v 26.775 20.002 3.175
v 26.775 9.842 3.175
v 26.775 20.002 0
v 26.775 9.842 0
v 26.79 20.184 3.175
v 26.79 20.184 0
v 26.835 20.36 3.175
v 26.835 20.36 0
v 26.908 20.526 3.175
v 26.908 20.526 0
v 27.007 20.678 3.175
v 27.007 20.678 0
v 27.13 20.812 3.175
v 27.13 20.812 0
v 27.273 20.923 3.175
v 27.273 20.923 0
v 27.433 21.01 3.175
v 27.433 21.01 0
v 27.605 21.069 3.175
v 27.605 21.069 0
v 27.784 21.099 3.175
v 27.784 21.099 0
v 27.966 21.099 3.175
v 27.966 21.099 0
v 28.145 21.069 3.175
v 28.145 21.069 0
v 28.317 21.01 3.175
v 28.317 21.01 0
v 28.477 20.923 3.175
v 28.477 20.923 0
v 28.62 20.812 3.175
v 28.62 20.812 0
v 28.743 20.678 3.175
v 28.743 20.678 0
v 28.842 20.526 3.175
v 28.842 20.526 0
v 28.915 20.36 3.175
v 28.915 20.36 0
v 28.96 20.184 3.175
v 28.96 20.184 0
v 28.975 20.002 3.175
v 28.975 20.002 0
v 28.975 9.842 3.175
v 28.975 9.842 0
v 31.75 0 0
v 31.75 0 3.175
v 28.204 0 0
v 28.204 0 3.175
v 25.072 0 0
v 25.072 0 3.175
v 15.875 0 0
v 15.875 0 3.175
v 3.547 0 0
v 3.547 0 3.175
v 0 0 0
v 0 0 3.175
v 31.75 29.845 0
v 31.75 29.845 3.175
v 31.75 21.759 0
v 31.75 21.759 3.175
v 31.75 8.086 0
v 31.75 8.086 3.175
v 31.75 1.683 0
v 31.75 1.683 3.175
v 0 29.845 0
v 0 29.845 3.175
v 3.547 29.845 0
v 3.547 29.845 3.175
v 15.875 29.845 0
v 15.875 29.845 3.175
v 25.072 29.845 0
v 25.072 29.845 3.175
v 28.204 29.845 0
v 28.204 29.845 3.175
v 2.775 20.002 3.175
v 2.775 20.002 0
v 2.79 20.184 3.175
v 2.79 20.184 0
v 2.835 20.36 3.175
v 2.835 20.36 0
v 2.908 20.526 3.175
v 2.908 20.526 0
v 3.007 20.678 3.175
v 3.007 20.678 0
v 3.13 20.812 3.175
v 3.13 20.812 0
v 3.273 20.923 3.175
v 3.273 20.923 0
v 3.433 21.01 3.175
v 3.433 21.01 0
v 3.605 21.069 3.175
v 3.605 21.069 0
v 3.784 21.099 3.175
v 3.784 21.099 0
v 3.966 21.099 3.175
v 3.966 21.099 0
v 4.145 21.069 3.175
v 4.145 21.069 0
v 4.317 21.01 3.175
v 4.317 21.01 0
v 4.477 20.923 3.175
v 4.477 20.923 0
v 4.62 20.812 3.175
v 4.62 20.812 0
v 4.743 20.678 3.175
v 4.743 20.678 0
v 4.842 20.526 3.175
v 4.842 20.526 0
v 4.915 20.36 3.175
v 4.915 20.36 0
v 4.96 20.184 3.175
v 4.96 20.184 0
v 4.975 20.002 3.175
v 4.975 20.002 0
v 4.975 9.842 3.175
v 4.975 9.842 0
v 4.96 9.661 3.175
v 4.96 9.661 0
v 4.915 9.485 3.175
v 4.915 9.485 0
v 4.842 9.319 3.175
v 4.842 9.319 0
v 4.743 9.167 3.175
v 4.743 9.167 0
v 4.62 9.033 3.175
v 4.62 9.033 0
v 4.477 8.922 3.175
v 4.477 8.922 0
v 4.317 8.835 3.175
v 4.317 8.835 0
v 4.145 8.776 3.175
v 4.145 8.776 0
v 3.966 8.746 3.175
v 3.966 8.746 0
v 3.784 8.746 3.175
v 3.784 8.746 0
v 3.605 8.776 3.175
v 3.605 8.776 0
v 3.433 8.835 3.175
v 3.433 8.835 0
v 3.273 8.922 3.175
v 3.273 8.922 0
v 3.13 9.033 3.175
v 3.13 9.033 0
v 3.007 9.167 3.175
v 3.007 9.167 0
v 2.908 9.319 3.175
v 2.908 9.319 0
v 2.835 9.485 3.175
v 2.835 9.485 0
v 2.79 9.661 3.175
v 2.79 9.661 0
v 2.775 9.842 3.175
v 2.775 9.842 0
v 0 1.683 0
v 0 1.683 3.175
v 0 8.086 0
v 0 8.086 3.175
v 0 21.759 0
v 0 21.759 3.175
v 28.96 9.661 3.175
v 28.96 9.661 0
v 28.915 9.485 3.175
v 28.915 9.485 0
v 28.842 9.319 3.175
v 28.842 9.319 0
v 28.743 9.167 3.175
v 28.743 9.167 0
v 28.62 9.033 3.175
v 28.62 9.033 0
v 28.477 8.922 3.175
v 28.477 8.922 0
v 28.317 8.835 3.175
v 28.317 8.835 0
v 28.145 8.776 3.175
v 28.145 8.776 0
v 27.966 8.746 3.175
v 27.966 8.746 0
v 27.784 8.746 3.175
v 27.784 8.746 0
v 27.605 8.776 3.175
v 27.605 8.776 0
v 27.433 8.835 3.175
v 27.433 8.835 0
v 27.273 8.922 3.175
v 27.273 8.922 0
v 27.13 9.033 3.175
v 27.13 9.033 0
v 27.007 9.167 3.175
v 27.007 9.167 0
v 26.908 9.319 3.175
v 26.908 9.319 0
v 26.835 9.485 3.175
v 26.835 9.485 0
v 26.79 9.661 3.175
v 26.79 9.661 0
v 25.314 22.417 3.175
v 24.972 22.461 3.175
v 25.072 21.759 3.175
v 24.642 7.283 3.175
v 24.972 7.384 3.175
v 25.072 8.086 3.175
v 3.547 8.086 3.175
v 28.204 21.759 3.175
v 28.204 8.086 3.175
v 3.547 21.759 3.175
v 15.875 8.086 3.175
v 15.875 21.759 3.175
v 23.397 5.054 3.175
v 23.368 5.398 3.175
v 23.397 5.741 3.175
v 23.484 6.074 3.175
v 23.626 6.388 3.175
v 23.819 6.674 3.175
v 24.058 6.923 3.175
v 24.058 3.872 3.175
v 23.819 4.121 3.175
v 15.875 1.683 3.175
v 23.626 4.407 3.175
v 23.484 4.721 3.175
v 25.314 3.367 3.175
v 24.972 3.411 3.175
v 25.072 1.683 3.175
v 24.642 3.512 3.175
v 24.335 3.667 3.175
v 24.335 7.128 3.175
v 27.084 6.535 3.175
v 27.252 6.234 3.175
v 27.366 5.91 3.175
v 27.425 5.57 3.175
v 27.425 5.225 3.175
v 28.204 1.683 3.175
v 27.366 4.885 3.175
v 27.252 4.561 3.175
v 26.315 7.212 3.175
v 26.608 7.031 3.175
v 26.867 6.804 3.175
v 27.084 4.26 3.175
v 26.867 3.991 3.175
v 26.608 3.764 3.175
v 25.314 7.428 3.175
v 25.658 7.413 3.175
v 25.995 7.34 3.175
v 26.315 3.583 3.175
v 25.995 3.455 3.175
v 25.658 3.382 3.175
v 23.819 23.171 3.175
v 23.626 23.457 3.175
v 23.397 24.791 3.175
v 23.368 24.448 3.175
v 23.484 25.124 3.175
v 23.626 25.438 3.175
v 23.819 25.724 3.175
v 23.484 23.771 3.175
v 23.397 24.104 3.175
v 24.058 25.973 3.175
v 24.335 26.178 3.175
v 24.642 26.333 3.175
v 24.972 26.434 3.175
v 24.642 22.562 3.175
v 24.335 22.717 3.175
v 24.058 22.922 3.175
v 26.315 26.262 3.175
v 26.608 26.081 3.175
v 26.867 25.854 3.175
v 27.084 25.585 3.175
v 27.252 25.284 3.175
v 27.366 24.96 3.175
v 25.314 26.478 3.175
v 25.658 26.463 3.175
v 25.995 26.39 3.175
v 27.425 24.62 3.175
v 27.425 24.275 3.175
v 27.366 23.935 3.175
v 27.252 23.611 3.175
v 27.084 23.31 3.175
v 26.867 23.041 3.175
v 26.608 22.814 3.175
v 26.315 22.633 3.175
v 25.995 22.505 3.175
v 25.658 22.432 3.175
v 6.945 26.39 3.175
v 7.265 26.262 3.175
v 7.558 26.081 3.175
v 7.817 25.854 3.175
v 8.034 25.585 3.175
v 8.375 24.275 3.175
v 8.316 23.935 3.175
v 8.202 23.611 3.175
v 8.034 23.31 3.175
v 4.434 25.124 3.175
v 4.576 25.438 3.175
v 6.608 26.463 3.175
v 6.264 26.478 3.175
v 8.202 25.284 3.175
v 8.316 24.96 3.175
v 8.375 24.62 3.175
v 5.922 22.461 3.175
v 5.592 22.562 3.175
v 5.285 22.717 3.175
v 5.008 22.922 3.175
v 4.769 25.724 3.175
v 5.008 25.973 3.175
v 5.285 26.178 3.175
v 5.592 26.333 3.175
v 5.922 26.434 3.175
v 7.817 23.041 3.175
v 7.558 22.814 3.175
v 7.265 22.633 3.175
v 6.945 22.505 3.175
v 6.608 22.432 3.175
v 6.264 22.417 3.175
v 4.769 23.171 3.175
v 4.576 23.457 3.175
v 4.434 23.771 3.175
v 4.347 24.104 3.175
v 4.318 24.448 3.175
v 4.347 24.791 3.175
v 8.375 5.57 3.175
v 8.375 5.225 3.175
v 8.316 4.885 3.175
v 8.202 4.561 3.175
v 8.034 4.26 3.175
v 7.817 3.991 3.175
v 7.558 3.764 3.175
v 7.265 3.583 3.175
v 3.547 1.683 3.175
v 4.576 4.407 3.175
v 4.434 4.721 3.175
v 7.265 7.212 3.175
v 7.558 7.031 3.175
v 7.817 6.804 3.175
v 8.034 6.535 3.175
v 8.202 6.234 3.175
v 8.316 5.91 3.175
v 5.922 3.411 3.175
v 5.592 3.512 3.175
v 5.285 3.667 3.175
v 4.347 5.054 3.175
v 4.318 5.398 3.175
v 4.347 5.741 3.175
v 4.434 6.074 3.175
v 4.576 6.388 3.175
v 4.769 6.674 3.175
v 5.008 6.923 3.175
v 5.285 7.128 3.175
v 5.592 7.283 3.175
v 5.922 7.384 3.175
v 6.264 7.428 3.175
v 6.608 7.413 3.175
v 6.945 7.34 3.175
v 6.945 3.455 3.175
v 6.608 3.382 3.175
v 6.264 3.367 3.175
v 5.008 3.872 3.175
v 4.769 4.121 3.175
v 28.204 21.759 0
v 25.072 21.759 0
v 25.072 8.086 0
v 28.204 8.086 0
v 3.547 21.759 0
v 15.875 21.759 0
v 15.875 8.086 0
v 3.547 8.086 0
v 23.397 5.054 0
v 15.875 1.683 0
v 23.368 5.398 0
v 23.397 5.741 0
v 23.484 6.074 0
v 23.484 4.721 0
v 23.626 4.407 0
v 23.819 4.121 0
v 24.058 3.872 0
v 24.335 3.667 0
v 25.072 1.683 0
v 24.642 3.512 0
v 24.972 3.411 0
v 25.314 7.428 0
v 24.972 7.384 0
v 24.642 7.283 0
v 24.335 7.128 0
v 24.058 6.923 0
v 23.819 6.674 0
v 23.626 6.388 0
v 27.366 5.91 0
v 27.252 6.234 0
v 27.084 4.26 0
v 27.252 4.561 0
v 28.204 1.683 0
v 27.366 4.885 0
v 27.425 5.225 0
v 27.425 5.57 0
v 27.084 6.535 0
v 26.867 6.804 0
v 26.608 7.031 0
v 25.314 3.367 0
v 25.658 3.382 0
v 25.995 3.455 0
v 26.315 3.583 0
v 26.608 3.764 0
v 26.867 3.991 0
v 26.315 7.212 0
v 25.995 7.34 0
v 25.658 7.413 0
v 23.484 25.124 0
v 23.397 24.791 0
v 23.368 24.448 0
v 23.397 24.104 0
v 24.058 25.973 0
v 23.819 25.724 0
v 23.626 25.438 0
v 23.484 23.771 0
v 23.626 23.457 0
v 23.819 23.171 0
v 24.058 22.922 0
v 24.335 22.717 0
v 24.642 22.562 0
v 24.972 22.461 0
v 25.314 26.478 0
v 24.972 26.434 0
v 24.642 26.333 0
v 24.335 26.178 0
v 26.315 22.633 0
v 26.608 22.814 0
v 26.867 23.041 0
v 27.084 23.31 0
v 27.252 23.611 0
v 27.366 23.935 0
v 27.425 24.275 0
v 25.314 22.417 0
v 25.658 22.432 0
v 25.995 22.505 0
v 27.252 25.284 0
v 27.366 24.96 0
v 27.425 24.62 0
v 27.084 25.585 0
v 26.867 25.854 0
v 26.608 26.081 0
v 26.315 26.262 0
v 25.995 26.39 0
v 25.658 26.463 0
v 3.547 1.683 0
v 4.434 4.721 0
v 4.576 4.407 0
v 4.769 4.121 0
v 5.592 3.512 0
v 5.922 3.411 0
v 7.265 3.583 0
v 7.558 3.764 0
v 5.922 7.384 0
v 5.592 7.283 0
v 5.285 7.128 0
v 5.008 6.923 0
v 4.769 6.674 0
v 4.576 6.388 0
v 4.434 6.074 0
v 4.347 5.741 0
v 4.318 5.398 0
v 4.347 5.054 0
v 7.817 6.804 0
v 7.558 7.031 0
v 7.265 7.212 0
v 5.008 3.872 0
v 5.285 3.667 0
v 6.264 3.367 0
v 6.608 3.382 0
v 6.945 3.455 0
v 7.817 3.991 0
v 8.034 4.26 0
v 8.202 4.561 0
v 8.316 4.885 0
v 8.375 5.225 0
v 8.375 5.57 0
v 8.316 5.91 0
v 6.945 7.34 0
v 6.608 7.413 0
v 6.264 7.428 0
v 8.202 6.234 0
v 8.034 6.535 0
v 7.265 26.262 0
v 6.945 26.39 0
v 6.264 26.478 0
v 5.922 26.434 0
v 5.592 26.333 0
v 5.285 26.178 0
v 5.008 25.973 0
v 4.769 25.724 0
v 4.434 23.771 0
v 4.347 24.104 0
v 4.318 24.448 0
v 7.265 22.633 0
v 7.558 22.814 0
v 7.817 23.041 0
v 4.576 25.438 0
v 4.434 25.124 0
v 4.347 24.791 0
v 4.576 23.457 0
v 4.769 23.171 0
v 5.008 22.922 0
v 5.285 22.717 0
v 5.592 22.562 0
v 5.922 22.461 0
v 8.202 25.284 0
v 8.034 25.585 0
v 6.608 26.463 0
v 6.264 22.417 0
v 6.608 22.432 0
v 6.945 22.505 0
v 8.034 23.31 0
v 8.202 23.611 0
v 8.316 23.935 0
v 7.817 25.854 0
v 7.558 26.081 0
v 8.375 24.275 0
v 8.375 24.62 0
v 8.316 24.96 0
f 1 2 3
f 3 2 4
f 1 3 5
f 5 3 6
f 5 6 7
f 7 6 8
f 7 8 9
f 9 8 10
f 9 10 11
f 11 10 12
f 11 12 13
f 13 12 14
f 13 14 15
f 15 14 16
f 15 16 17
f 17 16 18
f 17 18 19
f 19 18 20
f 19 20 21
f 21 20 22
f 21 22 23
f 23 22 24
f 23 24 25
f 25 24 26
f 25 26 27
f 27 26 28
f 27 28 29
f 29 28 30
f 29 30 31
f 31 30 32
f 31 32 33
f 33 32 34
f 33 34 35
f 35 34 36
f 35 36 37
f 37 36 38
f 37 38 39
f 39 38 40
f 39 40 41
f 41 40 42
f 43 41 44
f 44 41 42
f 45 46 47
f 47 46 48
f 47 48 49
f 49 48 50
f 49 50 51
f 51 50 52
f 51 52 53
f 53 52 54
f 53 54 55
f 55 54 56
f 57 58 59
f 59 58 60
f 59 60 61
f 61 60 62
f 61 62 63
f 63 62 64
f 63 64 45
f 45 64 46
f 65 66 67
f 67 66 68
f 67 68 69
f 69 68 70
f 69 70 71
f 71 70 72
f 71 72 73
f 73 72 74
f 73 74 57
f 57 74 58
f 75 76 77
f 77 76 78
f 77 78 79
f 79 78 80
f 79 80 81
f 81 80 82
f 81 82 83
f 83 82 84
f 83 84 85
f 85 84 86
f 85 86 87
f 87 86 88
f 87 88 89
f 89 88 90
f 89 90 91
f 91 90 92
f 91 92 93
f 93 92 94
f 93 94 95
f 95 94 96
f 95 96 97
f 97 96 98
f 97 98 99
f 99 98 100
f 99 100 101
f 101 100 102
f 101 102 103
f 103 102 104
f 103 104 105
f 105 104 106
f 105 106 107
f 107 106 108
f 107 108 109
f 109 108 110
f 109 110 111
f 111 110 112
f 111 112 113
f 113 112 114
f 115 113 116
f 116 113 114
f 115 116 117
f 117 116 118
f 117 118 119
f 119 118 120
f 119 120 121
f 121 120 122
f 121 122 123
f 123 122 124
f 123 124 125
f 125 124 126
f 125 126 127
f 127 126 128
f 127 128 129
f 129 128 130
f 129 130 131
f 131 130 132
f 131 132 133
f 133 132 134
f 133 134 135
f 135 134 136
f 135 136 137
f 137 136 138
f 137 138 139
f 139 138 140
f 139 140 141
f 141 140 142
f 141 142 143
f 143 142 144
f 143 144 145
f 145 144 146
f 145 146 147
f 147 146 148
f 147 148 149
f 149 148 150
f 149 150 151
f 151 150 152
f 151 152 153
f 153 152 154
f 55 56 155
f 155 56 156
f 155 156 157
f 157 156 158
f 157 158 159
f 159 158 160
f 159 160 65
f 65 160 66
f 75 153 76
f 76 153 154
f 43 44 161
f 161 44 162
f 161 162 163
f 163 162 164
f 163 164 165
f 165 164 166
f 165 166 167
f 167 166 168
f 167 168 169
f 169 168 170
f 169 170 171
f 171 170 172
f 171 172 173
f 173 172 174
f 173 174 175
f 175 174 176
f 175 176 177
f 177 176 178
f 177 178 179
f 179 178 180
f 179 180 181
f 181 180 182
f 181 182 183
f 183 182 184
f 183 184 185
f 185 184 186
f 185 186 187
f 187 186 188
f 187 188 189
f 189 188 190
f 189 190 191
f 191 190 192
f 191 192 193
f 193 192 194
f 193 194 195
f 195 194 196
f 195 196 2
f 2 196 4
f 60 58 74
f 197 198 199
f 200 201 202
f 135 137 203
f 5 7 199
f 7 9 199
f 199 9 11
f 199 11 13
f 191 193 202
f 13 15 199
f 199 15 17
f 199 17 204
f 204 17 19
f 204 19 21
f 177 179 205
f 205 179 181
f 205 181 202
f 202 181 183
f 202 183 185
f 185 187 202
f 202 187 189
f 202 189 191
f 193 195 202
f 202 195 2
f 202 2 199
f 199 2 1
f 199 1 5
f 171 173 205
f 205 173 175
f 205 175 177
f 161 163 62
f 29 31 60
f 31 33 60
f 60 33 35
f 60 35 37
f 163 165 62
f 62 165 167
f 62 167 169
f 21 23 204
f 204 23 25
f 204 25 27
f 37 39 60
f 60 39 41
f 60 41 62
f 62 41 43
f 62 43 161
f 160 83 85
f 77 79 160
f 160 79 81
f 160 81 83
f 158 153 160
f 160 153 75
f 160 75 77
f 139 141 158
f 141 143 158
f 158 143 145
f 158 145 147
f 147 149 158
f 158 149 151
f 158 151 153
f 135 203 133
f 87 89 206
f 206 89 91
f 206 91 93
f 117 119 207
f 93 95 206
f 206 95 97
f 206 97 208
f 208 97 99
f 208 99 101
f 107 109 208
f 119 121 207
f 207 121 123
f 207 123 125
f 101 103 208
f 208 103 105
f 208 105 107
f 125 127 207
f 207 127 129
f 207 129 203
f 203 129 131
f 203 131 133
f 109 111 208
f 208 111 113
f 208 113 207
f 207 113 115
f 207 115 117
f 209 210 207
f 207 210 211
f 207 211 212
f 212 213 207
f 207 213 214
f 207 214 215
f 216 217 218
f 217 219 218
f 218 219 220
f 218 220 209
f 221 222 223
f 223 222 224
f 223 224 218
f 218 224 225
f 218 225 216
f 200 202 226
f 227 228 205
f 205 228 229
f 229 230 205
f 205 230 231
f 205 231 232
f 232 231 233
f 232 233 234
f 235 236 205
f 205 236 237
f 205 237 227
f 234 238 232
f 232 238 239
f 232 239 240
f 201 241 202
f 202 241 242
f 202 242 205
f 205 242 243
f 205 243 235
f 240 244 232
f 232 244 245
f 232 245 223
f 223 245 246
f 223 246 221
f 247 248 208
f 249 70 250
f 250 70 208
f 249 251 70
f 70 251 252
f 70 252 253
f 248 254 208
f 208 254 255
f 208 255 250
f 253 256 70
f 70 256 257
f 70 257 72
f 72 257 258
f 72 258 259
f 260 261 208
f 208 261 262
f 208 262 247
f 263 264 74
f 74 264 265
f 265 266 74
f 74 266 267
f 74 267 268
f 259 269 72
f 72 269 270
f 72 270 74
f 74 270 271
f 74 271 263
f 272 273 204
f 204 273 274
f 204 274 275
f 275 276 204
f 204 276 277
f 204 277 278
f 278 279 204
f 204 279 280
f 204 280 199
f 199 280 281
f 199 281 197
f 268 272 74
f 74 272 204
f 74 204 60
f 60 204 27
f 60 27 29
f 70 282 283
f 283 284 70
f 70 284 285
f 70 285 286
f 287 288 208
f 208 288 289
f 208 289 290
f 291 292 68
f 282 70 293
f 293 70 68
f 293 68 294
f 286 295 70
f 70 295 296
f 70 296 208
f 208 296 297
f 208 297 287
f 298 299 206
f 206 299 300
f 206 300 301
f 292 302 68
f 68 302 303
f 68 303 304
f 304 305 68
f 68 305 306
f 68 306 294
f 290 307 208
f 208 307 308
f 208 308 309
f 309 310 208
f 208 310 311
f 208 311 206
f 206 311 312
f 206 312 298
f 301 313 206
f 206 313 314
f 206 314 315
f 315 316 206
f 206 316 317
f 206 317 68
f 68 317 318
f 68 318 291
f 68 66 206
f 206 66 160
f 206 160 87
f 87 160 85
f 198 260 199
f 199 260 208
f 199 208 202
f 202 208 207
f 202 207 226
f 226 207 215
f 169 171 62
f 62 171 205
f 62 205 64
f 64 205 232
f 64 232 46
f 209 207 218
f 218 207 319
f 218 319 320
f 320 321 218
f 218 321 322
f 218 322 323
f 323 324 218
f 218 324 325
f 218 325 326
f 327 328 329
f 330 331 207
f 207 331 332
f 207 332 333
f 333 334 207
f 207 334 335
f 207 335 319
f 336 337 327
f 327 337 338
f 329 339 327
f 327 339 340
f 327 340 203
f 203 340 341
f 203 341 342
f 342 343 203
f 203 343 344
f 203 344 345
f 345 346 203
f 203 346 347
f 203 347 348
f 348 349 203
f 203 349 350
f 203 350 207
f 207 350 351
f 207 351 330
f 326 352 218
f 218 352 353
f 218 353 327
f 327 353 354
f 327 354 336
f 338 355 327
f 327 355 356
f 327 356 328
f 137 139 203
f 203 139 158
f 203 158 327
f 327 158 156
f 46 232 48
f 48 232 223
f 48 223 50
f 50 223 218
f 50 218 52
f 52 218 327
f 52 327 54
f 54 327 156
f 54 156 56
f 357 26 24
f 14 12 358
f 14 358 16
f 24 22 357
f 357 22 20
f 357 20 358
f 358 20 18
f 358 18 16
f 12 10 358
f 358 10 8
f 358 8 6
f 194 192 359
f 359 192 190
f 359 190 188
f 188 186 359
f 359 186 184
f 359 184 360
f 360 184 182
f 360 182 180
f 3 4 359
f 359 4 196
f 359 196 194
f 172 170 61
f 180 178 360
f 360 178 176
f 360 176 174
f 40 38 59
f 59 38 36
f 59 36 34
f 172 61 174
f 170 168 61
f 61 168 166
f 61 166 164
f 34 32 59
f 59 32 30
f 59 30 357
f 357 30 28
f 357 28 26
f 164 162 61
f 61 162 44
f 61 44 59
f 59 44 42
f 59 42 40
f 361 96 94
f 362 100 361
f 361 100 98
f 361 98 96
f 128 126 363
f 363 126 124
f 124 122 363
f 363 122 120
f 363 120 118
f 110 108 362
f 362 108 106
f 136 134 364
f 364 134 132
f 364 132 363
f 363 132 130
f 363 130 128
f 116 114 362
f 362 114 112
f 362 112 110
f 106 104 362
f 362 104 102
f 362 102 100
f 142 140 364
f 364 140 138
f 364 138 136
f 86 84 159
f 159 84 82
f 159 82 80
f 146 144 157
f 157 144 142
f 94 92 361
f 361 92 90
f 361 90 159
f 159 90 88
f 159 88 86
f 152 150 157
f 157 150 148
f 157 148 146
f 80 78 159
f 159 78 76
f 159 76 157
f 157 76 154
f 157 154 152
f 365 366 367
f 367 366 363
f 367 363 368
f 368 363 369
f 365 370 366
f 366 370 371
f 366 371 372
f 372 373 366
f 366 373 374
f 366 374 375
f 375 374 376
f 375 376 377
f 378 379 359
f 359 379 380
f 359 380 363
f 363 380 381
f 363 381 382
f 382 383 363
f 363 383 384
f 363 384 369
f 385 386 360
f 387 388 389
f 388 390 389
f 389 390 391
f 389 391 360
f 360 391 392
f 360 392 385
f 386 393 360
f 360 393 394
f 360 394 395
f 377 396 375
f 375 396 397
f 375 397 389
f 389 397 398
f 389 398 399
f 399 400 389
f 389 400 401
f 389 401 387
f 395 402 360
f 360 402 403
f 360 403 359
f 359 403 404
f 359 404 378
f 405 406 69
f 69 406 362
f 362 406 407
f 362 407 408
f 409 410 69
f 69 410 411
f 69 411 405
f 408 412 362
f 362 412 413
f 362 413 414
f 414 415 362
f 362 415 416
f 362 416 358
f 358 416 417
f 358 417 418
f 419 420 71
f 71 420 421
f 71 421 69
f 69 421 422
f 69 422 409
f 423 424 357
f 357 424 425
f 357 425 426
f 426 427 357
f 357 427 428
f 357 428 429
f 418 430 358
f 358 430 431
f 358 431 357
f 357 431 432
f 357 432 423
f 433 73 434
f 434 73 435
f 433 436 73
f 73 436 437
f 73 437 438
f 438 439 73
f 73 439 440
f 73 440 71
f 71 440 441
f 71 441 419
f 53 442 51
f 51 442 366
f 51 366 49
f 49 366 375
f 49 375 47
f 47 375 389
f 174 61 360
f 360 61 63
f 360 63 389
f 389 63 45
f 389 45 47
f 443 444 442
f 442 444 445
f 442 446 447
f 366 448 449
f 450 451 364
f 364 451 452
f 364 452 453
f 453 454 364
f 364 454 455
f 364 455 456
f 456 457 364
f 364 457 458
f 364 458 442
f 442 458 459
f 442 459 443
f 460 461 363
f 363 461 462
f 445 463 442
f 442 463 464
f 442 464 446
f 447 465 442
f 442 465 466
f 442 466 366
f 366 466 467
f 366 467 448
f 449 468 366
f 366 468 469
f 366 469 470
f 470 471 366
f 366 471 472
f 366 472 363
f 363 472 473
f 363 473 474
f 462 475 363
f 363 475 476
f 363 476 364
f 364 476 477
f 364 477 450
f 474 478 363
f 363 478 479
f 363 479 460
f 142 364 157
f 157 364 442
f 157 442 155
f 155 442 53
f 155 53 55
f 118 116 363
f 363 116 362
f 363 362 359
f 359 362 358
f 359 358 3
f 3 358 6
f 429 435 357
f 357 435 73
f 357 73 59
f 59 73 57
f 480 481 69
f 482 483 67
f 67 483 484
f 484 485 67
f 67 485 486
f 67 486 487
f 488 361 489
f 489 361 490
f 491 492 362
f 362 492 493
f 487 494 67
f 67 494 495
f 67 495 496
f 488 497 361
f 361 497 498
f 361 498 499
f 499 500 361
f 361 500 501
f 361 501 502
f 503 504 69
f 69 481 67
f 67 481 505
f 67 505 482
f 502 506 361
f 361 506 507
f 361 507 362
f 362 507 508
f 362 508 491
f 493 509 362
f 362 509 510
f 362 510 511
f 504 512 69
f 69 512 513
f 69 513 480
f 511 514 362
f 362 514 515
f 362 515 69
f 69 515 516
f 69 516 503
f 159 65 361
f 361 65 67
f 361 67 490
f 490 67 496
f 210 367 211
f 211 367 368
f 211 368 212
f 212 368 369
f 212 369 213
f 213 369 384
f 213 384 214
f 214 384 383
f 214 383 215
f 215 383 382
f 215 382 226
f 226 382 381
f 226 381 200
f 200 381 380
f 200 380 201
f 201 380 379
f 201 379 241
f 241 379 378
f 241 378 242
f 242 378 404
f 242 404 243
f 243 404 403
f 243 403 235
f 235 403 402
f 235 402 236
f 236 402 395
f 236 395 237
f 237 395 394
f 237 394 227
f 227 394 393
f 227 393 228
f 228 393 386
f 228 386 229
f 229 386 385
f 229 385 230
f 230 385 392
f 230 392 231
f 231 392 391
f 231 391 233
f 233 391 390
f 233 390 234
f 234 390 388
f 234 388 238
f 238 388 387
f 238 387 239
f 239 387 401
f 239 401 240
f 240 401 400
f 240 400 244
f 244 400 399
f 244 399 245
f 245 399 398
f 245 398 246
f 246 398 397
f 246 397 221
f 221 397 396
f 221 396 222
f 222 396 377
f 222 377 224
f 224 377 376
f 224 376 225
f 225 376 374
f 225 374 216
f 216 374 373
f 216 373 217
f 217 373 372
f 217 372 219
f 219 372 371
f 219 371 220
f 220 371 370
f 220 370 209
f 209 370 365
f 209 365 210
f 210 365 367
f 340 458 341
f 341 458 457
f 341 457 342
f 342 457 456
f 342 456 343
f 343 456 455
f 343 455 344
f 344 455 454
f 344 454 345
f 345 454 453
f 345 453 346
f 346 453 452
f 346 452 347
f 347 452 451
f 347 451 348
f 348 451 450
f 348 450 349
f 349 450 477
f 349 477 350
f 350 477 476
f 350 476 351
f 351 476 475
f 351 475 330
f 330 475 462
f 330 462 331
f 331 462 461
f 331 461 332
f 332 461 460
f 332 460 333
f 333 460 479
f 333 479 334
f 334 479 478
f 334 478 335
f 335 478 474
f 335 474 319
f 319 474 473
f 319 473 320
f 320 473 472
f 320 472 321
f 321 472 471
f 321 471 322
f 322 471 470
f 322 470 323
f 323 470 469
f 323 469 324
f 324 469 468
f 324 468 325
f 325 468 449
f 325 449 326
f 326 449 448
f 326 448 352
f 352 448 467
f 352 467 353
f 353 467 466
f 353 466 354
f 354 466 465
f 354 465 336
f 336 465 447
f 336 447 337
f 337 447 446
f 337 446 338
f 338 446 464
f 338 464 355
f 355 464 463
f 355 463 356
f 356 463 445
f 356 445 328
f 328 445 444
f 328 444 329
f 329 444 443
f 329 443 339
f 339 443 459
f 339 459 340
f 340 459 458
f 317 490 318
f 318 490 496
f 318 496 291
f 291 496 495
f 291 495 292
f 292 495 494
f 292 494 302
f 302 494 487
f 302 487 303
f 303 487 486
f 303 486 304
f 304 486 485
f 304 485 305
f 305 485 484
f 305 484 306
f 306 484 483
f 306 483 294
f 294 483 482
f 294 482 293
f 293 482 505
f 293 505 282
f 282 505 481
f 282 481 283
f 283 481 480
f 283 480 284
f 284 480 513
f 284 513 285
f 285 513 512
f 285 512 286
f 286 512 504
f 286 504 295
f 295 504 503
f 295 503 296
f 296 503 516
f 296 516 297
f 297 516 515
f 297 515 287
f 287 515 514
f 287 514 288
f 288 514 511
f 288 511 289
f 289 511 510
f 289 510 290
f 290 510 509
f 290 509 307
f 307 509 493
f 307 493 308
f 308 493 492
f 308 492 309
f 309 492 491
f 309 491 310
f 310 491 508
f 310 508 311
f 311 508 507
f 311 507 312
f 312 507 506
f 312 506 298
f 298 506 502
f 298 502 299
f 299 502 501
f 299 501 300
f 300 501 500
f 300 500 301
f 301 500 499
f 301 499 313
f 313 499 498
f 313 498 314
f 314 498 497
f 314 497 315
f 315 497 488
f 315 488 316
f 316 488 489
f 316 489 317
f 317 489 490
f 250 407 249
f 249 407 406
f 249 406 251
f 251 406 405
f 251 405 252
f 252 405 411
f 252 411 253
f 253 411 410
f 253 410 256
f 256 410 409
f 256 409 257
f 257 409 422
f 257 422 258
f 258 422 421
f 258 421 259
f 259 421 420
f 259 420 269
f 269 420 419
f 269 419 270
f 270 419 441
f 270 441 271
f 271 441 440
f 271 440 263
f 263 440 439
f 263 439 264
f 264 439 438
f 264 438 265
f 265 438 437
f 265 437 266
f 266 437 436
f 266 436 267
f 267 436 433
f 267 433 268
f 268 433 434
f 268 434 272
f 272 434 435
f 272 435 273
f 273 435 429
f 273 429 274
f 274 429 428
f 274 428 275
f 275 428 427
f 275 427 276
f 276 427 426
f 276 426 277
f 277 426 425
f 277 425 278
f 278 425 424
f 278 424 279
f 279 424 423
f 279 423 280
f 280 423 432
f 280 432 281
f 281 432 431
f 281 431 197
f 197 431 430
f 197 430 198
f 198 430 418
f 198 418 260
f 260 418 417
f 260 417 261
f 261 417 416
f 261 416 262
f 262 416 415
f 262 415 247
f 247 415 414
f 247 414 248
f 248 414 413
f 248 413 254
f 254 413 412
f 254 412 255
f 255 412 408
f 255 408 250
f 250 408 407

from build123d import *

# Parameters (mm, degrees)
SKETCH2_W                     = 31.75
SKETCH2_H                     = 29.845
BOSS_EXTRUDE1_DEPTH           = 3.175
F_0_16_4_064_DIAMETER_HOLE1_D = 4.064


with BuildPart() as part:
    # Sketch2 → Boss-Extrude1 (new body)
    with BuildSketch(Plane.XY):
        with Locations((15.875, 14.9225)):
            Rectangle(SKETCH2_W, SKETCH2_H)
        with BuildLine():
            Line((2.775, 9.8425), (2.775, 20.0025))
            ThreePointArc((2.775, 20.0025), (3.875, 21.1025), (4.975, 20.0025))
            Line((4.975, 20.0025), (4.975, 9.8425))
            ThreePointArc((4.975, 9.8425), (3.875, 8.7425), (2.775, 9.8425))
        make_face(mode=Mode.SUBTRACT)
        with BuildLine():
            Line((28.975, 9.8425), (28.975, 20.0025))
            ThreePointArc((28.975, 20.0025), (27.875, 21.1025), (26.775, 20.0025))
            Line((26.775, 20.0025), (26.775, 9.8425))
            ThreePointArc((26.775, 9.8425), (27.875, 8.7425), (28.975, 9.8425))
        make_face(mode=Mode.SUBTRACT)
    extrude(amount=BOSS_EXTRUDE1_DEPTH)

    # Ø0.16 (4.064) Diameter Hole1 (through all)
    with Locations(Plane(origin=(0, 0, 0), x_dir=(-1, 0, 0), z_dir=(0, 0, -1))):
        with Locations((-25.4, 24.4475), (-6.35, 24.4475), (-6.35, 5.3975), (-25.4, 5.3975)):
            Hole(F_0_16_4_064_DIAMETER_HOLE1_D / 2)


solid = part.part
